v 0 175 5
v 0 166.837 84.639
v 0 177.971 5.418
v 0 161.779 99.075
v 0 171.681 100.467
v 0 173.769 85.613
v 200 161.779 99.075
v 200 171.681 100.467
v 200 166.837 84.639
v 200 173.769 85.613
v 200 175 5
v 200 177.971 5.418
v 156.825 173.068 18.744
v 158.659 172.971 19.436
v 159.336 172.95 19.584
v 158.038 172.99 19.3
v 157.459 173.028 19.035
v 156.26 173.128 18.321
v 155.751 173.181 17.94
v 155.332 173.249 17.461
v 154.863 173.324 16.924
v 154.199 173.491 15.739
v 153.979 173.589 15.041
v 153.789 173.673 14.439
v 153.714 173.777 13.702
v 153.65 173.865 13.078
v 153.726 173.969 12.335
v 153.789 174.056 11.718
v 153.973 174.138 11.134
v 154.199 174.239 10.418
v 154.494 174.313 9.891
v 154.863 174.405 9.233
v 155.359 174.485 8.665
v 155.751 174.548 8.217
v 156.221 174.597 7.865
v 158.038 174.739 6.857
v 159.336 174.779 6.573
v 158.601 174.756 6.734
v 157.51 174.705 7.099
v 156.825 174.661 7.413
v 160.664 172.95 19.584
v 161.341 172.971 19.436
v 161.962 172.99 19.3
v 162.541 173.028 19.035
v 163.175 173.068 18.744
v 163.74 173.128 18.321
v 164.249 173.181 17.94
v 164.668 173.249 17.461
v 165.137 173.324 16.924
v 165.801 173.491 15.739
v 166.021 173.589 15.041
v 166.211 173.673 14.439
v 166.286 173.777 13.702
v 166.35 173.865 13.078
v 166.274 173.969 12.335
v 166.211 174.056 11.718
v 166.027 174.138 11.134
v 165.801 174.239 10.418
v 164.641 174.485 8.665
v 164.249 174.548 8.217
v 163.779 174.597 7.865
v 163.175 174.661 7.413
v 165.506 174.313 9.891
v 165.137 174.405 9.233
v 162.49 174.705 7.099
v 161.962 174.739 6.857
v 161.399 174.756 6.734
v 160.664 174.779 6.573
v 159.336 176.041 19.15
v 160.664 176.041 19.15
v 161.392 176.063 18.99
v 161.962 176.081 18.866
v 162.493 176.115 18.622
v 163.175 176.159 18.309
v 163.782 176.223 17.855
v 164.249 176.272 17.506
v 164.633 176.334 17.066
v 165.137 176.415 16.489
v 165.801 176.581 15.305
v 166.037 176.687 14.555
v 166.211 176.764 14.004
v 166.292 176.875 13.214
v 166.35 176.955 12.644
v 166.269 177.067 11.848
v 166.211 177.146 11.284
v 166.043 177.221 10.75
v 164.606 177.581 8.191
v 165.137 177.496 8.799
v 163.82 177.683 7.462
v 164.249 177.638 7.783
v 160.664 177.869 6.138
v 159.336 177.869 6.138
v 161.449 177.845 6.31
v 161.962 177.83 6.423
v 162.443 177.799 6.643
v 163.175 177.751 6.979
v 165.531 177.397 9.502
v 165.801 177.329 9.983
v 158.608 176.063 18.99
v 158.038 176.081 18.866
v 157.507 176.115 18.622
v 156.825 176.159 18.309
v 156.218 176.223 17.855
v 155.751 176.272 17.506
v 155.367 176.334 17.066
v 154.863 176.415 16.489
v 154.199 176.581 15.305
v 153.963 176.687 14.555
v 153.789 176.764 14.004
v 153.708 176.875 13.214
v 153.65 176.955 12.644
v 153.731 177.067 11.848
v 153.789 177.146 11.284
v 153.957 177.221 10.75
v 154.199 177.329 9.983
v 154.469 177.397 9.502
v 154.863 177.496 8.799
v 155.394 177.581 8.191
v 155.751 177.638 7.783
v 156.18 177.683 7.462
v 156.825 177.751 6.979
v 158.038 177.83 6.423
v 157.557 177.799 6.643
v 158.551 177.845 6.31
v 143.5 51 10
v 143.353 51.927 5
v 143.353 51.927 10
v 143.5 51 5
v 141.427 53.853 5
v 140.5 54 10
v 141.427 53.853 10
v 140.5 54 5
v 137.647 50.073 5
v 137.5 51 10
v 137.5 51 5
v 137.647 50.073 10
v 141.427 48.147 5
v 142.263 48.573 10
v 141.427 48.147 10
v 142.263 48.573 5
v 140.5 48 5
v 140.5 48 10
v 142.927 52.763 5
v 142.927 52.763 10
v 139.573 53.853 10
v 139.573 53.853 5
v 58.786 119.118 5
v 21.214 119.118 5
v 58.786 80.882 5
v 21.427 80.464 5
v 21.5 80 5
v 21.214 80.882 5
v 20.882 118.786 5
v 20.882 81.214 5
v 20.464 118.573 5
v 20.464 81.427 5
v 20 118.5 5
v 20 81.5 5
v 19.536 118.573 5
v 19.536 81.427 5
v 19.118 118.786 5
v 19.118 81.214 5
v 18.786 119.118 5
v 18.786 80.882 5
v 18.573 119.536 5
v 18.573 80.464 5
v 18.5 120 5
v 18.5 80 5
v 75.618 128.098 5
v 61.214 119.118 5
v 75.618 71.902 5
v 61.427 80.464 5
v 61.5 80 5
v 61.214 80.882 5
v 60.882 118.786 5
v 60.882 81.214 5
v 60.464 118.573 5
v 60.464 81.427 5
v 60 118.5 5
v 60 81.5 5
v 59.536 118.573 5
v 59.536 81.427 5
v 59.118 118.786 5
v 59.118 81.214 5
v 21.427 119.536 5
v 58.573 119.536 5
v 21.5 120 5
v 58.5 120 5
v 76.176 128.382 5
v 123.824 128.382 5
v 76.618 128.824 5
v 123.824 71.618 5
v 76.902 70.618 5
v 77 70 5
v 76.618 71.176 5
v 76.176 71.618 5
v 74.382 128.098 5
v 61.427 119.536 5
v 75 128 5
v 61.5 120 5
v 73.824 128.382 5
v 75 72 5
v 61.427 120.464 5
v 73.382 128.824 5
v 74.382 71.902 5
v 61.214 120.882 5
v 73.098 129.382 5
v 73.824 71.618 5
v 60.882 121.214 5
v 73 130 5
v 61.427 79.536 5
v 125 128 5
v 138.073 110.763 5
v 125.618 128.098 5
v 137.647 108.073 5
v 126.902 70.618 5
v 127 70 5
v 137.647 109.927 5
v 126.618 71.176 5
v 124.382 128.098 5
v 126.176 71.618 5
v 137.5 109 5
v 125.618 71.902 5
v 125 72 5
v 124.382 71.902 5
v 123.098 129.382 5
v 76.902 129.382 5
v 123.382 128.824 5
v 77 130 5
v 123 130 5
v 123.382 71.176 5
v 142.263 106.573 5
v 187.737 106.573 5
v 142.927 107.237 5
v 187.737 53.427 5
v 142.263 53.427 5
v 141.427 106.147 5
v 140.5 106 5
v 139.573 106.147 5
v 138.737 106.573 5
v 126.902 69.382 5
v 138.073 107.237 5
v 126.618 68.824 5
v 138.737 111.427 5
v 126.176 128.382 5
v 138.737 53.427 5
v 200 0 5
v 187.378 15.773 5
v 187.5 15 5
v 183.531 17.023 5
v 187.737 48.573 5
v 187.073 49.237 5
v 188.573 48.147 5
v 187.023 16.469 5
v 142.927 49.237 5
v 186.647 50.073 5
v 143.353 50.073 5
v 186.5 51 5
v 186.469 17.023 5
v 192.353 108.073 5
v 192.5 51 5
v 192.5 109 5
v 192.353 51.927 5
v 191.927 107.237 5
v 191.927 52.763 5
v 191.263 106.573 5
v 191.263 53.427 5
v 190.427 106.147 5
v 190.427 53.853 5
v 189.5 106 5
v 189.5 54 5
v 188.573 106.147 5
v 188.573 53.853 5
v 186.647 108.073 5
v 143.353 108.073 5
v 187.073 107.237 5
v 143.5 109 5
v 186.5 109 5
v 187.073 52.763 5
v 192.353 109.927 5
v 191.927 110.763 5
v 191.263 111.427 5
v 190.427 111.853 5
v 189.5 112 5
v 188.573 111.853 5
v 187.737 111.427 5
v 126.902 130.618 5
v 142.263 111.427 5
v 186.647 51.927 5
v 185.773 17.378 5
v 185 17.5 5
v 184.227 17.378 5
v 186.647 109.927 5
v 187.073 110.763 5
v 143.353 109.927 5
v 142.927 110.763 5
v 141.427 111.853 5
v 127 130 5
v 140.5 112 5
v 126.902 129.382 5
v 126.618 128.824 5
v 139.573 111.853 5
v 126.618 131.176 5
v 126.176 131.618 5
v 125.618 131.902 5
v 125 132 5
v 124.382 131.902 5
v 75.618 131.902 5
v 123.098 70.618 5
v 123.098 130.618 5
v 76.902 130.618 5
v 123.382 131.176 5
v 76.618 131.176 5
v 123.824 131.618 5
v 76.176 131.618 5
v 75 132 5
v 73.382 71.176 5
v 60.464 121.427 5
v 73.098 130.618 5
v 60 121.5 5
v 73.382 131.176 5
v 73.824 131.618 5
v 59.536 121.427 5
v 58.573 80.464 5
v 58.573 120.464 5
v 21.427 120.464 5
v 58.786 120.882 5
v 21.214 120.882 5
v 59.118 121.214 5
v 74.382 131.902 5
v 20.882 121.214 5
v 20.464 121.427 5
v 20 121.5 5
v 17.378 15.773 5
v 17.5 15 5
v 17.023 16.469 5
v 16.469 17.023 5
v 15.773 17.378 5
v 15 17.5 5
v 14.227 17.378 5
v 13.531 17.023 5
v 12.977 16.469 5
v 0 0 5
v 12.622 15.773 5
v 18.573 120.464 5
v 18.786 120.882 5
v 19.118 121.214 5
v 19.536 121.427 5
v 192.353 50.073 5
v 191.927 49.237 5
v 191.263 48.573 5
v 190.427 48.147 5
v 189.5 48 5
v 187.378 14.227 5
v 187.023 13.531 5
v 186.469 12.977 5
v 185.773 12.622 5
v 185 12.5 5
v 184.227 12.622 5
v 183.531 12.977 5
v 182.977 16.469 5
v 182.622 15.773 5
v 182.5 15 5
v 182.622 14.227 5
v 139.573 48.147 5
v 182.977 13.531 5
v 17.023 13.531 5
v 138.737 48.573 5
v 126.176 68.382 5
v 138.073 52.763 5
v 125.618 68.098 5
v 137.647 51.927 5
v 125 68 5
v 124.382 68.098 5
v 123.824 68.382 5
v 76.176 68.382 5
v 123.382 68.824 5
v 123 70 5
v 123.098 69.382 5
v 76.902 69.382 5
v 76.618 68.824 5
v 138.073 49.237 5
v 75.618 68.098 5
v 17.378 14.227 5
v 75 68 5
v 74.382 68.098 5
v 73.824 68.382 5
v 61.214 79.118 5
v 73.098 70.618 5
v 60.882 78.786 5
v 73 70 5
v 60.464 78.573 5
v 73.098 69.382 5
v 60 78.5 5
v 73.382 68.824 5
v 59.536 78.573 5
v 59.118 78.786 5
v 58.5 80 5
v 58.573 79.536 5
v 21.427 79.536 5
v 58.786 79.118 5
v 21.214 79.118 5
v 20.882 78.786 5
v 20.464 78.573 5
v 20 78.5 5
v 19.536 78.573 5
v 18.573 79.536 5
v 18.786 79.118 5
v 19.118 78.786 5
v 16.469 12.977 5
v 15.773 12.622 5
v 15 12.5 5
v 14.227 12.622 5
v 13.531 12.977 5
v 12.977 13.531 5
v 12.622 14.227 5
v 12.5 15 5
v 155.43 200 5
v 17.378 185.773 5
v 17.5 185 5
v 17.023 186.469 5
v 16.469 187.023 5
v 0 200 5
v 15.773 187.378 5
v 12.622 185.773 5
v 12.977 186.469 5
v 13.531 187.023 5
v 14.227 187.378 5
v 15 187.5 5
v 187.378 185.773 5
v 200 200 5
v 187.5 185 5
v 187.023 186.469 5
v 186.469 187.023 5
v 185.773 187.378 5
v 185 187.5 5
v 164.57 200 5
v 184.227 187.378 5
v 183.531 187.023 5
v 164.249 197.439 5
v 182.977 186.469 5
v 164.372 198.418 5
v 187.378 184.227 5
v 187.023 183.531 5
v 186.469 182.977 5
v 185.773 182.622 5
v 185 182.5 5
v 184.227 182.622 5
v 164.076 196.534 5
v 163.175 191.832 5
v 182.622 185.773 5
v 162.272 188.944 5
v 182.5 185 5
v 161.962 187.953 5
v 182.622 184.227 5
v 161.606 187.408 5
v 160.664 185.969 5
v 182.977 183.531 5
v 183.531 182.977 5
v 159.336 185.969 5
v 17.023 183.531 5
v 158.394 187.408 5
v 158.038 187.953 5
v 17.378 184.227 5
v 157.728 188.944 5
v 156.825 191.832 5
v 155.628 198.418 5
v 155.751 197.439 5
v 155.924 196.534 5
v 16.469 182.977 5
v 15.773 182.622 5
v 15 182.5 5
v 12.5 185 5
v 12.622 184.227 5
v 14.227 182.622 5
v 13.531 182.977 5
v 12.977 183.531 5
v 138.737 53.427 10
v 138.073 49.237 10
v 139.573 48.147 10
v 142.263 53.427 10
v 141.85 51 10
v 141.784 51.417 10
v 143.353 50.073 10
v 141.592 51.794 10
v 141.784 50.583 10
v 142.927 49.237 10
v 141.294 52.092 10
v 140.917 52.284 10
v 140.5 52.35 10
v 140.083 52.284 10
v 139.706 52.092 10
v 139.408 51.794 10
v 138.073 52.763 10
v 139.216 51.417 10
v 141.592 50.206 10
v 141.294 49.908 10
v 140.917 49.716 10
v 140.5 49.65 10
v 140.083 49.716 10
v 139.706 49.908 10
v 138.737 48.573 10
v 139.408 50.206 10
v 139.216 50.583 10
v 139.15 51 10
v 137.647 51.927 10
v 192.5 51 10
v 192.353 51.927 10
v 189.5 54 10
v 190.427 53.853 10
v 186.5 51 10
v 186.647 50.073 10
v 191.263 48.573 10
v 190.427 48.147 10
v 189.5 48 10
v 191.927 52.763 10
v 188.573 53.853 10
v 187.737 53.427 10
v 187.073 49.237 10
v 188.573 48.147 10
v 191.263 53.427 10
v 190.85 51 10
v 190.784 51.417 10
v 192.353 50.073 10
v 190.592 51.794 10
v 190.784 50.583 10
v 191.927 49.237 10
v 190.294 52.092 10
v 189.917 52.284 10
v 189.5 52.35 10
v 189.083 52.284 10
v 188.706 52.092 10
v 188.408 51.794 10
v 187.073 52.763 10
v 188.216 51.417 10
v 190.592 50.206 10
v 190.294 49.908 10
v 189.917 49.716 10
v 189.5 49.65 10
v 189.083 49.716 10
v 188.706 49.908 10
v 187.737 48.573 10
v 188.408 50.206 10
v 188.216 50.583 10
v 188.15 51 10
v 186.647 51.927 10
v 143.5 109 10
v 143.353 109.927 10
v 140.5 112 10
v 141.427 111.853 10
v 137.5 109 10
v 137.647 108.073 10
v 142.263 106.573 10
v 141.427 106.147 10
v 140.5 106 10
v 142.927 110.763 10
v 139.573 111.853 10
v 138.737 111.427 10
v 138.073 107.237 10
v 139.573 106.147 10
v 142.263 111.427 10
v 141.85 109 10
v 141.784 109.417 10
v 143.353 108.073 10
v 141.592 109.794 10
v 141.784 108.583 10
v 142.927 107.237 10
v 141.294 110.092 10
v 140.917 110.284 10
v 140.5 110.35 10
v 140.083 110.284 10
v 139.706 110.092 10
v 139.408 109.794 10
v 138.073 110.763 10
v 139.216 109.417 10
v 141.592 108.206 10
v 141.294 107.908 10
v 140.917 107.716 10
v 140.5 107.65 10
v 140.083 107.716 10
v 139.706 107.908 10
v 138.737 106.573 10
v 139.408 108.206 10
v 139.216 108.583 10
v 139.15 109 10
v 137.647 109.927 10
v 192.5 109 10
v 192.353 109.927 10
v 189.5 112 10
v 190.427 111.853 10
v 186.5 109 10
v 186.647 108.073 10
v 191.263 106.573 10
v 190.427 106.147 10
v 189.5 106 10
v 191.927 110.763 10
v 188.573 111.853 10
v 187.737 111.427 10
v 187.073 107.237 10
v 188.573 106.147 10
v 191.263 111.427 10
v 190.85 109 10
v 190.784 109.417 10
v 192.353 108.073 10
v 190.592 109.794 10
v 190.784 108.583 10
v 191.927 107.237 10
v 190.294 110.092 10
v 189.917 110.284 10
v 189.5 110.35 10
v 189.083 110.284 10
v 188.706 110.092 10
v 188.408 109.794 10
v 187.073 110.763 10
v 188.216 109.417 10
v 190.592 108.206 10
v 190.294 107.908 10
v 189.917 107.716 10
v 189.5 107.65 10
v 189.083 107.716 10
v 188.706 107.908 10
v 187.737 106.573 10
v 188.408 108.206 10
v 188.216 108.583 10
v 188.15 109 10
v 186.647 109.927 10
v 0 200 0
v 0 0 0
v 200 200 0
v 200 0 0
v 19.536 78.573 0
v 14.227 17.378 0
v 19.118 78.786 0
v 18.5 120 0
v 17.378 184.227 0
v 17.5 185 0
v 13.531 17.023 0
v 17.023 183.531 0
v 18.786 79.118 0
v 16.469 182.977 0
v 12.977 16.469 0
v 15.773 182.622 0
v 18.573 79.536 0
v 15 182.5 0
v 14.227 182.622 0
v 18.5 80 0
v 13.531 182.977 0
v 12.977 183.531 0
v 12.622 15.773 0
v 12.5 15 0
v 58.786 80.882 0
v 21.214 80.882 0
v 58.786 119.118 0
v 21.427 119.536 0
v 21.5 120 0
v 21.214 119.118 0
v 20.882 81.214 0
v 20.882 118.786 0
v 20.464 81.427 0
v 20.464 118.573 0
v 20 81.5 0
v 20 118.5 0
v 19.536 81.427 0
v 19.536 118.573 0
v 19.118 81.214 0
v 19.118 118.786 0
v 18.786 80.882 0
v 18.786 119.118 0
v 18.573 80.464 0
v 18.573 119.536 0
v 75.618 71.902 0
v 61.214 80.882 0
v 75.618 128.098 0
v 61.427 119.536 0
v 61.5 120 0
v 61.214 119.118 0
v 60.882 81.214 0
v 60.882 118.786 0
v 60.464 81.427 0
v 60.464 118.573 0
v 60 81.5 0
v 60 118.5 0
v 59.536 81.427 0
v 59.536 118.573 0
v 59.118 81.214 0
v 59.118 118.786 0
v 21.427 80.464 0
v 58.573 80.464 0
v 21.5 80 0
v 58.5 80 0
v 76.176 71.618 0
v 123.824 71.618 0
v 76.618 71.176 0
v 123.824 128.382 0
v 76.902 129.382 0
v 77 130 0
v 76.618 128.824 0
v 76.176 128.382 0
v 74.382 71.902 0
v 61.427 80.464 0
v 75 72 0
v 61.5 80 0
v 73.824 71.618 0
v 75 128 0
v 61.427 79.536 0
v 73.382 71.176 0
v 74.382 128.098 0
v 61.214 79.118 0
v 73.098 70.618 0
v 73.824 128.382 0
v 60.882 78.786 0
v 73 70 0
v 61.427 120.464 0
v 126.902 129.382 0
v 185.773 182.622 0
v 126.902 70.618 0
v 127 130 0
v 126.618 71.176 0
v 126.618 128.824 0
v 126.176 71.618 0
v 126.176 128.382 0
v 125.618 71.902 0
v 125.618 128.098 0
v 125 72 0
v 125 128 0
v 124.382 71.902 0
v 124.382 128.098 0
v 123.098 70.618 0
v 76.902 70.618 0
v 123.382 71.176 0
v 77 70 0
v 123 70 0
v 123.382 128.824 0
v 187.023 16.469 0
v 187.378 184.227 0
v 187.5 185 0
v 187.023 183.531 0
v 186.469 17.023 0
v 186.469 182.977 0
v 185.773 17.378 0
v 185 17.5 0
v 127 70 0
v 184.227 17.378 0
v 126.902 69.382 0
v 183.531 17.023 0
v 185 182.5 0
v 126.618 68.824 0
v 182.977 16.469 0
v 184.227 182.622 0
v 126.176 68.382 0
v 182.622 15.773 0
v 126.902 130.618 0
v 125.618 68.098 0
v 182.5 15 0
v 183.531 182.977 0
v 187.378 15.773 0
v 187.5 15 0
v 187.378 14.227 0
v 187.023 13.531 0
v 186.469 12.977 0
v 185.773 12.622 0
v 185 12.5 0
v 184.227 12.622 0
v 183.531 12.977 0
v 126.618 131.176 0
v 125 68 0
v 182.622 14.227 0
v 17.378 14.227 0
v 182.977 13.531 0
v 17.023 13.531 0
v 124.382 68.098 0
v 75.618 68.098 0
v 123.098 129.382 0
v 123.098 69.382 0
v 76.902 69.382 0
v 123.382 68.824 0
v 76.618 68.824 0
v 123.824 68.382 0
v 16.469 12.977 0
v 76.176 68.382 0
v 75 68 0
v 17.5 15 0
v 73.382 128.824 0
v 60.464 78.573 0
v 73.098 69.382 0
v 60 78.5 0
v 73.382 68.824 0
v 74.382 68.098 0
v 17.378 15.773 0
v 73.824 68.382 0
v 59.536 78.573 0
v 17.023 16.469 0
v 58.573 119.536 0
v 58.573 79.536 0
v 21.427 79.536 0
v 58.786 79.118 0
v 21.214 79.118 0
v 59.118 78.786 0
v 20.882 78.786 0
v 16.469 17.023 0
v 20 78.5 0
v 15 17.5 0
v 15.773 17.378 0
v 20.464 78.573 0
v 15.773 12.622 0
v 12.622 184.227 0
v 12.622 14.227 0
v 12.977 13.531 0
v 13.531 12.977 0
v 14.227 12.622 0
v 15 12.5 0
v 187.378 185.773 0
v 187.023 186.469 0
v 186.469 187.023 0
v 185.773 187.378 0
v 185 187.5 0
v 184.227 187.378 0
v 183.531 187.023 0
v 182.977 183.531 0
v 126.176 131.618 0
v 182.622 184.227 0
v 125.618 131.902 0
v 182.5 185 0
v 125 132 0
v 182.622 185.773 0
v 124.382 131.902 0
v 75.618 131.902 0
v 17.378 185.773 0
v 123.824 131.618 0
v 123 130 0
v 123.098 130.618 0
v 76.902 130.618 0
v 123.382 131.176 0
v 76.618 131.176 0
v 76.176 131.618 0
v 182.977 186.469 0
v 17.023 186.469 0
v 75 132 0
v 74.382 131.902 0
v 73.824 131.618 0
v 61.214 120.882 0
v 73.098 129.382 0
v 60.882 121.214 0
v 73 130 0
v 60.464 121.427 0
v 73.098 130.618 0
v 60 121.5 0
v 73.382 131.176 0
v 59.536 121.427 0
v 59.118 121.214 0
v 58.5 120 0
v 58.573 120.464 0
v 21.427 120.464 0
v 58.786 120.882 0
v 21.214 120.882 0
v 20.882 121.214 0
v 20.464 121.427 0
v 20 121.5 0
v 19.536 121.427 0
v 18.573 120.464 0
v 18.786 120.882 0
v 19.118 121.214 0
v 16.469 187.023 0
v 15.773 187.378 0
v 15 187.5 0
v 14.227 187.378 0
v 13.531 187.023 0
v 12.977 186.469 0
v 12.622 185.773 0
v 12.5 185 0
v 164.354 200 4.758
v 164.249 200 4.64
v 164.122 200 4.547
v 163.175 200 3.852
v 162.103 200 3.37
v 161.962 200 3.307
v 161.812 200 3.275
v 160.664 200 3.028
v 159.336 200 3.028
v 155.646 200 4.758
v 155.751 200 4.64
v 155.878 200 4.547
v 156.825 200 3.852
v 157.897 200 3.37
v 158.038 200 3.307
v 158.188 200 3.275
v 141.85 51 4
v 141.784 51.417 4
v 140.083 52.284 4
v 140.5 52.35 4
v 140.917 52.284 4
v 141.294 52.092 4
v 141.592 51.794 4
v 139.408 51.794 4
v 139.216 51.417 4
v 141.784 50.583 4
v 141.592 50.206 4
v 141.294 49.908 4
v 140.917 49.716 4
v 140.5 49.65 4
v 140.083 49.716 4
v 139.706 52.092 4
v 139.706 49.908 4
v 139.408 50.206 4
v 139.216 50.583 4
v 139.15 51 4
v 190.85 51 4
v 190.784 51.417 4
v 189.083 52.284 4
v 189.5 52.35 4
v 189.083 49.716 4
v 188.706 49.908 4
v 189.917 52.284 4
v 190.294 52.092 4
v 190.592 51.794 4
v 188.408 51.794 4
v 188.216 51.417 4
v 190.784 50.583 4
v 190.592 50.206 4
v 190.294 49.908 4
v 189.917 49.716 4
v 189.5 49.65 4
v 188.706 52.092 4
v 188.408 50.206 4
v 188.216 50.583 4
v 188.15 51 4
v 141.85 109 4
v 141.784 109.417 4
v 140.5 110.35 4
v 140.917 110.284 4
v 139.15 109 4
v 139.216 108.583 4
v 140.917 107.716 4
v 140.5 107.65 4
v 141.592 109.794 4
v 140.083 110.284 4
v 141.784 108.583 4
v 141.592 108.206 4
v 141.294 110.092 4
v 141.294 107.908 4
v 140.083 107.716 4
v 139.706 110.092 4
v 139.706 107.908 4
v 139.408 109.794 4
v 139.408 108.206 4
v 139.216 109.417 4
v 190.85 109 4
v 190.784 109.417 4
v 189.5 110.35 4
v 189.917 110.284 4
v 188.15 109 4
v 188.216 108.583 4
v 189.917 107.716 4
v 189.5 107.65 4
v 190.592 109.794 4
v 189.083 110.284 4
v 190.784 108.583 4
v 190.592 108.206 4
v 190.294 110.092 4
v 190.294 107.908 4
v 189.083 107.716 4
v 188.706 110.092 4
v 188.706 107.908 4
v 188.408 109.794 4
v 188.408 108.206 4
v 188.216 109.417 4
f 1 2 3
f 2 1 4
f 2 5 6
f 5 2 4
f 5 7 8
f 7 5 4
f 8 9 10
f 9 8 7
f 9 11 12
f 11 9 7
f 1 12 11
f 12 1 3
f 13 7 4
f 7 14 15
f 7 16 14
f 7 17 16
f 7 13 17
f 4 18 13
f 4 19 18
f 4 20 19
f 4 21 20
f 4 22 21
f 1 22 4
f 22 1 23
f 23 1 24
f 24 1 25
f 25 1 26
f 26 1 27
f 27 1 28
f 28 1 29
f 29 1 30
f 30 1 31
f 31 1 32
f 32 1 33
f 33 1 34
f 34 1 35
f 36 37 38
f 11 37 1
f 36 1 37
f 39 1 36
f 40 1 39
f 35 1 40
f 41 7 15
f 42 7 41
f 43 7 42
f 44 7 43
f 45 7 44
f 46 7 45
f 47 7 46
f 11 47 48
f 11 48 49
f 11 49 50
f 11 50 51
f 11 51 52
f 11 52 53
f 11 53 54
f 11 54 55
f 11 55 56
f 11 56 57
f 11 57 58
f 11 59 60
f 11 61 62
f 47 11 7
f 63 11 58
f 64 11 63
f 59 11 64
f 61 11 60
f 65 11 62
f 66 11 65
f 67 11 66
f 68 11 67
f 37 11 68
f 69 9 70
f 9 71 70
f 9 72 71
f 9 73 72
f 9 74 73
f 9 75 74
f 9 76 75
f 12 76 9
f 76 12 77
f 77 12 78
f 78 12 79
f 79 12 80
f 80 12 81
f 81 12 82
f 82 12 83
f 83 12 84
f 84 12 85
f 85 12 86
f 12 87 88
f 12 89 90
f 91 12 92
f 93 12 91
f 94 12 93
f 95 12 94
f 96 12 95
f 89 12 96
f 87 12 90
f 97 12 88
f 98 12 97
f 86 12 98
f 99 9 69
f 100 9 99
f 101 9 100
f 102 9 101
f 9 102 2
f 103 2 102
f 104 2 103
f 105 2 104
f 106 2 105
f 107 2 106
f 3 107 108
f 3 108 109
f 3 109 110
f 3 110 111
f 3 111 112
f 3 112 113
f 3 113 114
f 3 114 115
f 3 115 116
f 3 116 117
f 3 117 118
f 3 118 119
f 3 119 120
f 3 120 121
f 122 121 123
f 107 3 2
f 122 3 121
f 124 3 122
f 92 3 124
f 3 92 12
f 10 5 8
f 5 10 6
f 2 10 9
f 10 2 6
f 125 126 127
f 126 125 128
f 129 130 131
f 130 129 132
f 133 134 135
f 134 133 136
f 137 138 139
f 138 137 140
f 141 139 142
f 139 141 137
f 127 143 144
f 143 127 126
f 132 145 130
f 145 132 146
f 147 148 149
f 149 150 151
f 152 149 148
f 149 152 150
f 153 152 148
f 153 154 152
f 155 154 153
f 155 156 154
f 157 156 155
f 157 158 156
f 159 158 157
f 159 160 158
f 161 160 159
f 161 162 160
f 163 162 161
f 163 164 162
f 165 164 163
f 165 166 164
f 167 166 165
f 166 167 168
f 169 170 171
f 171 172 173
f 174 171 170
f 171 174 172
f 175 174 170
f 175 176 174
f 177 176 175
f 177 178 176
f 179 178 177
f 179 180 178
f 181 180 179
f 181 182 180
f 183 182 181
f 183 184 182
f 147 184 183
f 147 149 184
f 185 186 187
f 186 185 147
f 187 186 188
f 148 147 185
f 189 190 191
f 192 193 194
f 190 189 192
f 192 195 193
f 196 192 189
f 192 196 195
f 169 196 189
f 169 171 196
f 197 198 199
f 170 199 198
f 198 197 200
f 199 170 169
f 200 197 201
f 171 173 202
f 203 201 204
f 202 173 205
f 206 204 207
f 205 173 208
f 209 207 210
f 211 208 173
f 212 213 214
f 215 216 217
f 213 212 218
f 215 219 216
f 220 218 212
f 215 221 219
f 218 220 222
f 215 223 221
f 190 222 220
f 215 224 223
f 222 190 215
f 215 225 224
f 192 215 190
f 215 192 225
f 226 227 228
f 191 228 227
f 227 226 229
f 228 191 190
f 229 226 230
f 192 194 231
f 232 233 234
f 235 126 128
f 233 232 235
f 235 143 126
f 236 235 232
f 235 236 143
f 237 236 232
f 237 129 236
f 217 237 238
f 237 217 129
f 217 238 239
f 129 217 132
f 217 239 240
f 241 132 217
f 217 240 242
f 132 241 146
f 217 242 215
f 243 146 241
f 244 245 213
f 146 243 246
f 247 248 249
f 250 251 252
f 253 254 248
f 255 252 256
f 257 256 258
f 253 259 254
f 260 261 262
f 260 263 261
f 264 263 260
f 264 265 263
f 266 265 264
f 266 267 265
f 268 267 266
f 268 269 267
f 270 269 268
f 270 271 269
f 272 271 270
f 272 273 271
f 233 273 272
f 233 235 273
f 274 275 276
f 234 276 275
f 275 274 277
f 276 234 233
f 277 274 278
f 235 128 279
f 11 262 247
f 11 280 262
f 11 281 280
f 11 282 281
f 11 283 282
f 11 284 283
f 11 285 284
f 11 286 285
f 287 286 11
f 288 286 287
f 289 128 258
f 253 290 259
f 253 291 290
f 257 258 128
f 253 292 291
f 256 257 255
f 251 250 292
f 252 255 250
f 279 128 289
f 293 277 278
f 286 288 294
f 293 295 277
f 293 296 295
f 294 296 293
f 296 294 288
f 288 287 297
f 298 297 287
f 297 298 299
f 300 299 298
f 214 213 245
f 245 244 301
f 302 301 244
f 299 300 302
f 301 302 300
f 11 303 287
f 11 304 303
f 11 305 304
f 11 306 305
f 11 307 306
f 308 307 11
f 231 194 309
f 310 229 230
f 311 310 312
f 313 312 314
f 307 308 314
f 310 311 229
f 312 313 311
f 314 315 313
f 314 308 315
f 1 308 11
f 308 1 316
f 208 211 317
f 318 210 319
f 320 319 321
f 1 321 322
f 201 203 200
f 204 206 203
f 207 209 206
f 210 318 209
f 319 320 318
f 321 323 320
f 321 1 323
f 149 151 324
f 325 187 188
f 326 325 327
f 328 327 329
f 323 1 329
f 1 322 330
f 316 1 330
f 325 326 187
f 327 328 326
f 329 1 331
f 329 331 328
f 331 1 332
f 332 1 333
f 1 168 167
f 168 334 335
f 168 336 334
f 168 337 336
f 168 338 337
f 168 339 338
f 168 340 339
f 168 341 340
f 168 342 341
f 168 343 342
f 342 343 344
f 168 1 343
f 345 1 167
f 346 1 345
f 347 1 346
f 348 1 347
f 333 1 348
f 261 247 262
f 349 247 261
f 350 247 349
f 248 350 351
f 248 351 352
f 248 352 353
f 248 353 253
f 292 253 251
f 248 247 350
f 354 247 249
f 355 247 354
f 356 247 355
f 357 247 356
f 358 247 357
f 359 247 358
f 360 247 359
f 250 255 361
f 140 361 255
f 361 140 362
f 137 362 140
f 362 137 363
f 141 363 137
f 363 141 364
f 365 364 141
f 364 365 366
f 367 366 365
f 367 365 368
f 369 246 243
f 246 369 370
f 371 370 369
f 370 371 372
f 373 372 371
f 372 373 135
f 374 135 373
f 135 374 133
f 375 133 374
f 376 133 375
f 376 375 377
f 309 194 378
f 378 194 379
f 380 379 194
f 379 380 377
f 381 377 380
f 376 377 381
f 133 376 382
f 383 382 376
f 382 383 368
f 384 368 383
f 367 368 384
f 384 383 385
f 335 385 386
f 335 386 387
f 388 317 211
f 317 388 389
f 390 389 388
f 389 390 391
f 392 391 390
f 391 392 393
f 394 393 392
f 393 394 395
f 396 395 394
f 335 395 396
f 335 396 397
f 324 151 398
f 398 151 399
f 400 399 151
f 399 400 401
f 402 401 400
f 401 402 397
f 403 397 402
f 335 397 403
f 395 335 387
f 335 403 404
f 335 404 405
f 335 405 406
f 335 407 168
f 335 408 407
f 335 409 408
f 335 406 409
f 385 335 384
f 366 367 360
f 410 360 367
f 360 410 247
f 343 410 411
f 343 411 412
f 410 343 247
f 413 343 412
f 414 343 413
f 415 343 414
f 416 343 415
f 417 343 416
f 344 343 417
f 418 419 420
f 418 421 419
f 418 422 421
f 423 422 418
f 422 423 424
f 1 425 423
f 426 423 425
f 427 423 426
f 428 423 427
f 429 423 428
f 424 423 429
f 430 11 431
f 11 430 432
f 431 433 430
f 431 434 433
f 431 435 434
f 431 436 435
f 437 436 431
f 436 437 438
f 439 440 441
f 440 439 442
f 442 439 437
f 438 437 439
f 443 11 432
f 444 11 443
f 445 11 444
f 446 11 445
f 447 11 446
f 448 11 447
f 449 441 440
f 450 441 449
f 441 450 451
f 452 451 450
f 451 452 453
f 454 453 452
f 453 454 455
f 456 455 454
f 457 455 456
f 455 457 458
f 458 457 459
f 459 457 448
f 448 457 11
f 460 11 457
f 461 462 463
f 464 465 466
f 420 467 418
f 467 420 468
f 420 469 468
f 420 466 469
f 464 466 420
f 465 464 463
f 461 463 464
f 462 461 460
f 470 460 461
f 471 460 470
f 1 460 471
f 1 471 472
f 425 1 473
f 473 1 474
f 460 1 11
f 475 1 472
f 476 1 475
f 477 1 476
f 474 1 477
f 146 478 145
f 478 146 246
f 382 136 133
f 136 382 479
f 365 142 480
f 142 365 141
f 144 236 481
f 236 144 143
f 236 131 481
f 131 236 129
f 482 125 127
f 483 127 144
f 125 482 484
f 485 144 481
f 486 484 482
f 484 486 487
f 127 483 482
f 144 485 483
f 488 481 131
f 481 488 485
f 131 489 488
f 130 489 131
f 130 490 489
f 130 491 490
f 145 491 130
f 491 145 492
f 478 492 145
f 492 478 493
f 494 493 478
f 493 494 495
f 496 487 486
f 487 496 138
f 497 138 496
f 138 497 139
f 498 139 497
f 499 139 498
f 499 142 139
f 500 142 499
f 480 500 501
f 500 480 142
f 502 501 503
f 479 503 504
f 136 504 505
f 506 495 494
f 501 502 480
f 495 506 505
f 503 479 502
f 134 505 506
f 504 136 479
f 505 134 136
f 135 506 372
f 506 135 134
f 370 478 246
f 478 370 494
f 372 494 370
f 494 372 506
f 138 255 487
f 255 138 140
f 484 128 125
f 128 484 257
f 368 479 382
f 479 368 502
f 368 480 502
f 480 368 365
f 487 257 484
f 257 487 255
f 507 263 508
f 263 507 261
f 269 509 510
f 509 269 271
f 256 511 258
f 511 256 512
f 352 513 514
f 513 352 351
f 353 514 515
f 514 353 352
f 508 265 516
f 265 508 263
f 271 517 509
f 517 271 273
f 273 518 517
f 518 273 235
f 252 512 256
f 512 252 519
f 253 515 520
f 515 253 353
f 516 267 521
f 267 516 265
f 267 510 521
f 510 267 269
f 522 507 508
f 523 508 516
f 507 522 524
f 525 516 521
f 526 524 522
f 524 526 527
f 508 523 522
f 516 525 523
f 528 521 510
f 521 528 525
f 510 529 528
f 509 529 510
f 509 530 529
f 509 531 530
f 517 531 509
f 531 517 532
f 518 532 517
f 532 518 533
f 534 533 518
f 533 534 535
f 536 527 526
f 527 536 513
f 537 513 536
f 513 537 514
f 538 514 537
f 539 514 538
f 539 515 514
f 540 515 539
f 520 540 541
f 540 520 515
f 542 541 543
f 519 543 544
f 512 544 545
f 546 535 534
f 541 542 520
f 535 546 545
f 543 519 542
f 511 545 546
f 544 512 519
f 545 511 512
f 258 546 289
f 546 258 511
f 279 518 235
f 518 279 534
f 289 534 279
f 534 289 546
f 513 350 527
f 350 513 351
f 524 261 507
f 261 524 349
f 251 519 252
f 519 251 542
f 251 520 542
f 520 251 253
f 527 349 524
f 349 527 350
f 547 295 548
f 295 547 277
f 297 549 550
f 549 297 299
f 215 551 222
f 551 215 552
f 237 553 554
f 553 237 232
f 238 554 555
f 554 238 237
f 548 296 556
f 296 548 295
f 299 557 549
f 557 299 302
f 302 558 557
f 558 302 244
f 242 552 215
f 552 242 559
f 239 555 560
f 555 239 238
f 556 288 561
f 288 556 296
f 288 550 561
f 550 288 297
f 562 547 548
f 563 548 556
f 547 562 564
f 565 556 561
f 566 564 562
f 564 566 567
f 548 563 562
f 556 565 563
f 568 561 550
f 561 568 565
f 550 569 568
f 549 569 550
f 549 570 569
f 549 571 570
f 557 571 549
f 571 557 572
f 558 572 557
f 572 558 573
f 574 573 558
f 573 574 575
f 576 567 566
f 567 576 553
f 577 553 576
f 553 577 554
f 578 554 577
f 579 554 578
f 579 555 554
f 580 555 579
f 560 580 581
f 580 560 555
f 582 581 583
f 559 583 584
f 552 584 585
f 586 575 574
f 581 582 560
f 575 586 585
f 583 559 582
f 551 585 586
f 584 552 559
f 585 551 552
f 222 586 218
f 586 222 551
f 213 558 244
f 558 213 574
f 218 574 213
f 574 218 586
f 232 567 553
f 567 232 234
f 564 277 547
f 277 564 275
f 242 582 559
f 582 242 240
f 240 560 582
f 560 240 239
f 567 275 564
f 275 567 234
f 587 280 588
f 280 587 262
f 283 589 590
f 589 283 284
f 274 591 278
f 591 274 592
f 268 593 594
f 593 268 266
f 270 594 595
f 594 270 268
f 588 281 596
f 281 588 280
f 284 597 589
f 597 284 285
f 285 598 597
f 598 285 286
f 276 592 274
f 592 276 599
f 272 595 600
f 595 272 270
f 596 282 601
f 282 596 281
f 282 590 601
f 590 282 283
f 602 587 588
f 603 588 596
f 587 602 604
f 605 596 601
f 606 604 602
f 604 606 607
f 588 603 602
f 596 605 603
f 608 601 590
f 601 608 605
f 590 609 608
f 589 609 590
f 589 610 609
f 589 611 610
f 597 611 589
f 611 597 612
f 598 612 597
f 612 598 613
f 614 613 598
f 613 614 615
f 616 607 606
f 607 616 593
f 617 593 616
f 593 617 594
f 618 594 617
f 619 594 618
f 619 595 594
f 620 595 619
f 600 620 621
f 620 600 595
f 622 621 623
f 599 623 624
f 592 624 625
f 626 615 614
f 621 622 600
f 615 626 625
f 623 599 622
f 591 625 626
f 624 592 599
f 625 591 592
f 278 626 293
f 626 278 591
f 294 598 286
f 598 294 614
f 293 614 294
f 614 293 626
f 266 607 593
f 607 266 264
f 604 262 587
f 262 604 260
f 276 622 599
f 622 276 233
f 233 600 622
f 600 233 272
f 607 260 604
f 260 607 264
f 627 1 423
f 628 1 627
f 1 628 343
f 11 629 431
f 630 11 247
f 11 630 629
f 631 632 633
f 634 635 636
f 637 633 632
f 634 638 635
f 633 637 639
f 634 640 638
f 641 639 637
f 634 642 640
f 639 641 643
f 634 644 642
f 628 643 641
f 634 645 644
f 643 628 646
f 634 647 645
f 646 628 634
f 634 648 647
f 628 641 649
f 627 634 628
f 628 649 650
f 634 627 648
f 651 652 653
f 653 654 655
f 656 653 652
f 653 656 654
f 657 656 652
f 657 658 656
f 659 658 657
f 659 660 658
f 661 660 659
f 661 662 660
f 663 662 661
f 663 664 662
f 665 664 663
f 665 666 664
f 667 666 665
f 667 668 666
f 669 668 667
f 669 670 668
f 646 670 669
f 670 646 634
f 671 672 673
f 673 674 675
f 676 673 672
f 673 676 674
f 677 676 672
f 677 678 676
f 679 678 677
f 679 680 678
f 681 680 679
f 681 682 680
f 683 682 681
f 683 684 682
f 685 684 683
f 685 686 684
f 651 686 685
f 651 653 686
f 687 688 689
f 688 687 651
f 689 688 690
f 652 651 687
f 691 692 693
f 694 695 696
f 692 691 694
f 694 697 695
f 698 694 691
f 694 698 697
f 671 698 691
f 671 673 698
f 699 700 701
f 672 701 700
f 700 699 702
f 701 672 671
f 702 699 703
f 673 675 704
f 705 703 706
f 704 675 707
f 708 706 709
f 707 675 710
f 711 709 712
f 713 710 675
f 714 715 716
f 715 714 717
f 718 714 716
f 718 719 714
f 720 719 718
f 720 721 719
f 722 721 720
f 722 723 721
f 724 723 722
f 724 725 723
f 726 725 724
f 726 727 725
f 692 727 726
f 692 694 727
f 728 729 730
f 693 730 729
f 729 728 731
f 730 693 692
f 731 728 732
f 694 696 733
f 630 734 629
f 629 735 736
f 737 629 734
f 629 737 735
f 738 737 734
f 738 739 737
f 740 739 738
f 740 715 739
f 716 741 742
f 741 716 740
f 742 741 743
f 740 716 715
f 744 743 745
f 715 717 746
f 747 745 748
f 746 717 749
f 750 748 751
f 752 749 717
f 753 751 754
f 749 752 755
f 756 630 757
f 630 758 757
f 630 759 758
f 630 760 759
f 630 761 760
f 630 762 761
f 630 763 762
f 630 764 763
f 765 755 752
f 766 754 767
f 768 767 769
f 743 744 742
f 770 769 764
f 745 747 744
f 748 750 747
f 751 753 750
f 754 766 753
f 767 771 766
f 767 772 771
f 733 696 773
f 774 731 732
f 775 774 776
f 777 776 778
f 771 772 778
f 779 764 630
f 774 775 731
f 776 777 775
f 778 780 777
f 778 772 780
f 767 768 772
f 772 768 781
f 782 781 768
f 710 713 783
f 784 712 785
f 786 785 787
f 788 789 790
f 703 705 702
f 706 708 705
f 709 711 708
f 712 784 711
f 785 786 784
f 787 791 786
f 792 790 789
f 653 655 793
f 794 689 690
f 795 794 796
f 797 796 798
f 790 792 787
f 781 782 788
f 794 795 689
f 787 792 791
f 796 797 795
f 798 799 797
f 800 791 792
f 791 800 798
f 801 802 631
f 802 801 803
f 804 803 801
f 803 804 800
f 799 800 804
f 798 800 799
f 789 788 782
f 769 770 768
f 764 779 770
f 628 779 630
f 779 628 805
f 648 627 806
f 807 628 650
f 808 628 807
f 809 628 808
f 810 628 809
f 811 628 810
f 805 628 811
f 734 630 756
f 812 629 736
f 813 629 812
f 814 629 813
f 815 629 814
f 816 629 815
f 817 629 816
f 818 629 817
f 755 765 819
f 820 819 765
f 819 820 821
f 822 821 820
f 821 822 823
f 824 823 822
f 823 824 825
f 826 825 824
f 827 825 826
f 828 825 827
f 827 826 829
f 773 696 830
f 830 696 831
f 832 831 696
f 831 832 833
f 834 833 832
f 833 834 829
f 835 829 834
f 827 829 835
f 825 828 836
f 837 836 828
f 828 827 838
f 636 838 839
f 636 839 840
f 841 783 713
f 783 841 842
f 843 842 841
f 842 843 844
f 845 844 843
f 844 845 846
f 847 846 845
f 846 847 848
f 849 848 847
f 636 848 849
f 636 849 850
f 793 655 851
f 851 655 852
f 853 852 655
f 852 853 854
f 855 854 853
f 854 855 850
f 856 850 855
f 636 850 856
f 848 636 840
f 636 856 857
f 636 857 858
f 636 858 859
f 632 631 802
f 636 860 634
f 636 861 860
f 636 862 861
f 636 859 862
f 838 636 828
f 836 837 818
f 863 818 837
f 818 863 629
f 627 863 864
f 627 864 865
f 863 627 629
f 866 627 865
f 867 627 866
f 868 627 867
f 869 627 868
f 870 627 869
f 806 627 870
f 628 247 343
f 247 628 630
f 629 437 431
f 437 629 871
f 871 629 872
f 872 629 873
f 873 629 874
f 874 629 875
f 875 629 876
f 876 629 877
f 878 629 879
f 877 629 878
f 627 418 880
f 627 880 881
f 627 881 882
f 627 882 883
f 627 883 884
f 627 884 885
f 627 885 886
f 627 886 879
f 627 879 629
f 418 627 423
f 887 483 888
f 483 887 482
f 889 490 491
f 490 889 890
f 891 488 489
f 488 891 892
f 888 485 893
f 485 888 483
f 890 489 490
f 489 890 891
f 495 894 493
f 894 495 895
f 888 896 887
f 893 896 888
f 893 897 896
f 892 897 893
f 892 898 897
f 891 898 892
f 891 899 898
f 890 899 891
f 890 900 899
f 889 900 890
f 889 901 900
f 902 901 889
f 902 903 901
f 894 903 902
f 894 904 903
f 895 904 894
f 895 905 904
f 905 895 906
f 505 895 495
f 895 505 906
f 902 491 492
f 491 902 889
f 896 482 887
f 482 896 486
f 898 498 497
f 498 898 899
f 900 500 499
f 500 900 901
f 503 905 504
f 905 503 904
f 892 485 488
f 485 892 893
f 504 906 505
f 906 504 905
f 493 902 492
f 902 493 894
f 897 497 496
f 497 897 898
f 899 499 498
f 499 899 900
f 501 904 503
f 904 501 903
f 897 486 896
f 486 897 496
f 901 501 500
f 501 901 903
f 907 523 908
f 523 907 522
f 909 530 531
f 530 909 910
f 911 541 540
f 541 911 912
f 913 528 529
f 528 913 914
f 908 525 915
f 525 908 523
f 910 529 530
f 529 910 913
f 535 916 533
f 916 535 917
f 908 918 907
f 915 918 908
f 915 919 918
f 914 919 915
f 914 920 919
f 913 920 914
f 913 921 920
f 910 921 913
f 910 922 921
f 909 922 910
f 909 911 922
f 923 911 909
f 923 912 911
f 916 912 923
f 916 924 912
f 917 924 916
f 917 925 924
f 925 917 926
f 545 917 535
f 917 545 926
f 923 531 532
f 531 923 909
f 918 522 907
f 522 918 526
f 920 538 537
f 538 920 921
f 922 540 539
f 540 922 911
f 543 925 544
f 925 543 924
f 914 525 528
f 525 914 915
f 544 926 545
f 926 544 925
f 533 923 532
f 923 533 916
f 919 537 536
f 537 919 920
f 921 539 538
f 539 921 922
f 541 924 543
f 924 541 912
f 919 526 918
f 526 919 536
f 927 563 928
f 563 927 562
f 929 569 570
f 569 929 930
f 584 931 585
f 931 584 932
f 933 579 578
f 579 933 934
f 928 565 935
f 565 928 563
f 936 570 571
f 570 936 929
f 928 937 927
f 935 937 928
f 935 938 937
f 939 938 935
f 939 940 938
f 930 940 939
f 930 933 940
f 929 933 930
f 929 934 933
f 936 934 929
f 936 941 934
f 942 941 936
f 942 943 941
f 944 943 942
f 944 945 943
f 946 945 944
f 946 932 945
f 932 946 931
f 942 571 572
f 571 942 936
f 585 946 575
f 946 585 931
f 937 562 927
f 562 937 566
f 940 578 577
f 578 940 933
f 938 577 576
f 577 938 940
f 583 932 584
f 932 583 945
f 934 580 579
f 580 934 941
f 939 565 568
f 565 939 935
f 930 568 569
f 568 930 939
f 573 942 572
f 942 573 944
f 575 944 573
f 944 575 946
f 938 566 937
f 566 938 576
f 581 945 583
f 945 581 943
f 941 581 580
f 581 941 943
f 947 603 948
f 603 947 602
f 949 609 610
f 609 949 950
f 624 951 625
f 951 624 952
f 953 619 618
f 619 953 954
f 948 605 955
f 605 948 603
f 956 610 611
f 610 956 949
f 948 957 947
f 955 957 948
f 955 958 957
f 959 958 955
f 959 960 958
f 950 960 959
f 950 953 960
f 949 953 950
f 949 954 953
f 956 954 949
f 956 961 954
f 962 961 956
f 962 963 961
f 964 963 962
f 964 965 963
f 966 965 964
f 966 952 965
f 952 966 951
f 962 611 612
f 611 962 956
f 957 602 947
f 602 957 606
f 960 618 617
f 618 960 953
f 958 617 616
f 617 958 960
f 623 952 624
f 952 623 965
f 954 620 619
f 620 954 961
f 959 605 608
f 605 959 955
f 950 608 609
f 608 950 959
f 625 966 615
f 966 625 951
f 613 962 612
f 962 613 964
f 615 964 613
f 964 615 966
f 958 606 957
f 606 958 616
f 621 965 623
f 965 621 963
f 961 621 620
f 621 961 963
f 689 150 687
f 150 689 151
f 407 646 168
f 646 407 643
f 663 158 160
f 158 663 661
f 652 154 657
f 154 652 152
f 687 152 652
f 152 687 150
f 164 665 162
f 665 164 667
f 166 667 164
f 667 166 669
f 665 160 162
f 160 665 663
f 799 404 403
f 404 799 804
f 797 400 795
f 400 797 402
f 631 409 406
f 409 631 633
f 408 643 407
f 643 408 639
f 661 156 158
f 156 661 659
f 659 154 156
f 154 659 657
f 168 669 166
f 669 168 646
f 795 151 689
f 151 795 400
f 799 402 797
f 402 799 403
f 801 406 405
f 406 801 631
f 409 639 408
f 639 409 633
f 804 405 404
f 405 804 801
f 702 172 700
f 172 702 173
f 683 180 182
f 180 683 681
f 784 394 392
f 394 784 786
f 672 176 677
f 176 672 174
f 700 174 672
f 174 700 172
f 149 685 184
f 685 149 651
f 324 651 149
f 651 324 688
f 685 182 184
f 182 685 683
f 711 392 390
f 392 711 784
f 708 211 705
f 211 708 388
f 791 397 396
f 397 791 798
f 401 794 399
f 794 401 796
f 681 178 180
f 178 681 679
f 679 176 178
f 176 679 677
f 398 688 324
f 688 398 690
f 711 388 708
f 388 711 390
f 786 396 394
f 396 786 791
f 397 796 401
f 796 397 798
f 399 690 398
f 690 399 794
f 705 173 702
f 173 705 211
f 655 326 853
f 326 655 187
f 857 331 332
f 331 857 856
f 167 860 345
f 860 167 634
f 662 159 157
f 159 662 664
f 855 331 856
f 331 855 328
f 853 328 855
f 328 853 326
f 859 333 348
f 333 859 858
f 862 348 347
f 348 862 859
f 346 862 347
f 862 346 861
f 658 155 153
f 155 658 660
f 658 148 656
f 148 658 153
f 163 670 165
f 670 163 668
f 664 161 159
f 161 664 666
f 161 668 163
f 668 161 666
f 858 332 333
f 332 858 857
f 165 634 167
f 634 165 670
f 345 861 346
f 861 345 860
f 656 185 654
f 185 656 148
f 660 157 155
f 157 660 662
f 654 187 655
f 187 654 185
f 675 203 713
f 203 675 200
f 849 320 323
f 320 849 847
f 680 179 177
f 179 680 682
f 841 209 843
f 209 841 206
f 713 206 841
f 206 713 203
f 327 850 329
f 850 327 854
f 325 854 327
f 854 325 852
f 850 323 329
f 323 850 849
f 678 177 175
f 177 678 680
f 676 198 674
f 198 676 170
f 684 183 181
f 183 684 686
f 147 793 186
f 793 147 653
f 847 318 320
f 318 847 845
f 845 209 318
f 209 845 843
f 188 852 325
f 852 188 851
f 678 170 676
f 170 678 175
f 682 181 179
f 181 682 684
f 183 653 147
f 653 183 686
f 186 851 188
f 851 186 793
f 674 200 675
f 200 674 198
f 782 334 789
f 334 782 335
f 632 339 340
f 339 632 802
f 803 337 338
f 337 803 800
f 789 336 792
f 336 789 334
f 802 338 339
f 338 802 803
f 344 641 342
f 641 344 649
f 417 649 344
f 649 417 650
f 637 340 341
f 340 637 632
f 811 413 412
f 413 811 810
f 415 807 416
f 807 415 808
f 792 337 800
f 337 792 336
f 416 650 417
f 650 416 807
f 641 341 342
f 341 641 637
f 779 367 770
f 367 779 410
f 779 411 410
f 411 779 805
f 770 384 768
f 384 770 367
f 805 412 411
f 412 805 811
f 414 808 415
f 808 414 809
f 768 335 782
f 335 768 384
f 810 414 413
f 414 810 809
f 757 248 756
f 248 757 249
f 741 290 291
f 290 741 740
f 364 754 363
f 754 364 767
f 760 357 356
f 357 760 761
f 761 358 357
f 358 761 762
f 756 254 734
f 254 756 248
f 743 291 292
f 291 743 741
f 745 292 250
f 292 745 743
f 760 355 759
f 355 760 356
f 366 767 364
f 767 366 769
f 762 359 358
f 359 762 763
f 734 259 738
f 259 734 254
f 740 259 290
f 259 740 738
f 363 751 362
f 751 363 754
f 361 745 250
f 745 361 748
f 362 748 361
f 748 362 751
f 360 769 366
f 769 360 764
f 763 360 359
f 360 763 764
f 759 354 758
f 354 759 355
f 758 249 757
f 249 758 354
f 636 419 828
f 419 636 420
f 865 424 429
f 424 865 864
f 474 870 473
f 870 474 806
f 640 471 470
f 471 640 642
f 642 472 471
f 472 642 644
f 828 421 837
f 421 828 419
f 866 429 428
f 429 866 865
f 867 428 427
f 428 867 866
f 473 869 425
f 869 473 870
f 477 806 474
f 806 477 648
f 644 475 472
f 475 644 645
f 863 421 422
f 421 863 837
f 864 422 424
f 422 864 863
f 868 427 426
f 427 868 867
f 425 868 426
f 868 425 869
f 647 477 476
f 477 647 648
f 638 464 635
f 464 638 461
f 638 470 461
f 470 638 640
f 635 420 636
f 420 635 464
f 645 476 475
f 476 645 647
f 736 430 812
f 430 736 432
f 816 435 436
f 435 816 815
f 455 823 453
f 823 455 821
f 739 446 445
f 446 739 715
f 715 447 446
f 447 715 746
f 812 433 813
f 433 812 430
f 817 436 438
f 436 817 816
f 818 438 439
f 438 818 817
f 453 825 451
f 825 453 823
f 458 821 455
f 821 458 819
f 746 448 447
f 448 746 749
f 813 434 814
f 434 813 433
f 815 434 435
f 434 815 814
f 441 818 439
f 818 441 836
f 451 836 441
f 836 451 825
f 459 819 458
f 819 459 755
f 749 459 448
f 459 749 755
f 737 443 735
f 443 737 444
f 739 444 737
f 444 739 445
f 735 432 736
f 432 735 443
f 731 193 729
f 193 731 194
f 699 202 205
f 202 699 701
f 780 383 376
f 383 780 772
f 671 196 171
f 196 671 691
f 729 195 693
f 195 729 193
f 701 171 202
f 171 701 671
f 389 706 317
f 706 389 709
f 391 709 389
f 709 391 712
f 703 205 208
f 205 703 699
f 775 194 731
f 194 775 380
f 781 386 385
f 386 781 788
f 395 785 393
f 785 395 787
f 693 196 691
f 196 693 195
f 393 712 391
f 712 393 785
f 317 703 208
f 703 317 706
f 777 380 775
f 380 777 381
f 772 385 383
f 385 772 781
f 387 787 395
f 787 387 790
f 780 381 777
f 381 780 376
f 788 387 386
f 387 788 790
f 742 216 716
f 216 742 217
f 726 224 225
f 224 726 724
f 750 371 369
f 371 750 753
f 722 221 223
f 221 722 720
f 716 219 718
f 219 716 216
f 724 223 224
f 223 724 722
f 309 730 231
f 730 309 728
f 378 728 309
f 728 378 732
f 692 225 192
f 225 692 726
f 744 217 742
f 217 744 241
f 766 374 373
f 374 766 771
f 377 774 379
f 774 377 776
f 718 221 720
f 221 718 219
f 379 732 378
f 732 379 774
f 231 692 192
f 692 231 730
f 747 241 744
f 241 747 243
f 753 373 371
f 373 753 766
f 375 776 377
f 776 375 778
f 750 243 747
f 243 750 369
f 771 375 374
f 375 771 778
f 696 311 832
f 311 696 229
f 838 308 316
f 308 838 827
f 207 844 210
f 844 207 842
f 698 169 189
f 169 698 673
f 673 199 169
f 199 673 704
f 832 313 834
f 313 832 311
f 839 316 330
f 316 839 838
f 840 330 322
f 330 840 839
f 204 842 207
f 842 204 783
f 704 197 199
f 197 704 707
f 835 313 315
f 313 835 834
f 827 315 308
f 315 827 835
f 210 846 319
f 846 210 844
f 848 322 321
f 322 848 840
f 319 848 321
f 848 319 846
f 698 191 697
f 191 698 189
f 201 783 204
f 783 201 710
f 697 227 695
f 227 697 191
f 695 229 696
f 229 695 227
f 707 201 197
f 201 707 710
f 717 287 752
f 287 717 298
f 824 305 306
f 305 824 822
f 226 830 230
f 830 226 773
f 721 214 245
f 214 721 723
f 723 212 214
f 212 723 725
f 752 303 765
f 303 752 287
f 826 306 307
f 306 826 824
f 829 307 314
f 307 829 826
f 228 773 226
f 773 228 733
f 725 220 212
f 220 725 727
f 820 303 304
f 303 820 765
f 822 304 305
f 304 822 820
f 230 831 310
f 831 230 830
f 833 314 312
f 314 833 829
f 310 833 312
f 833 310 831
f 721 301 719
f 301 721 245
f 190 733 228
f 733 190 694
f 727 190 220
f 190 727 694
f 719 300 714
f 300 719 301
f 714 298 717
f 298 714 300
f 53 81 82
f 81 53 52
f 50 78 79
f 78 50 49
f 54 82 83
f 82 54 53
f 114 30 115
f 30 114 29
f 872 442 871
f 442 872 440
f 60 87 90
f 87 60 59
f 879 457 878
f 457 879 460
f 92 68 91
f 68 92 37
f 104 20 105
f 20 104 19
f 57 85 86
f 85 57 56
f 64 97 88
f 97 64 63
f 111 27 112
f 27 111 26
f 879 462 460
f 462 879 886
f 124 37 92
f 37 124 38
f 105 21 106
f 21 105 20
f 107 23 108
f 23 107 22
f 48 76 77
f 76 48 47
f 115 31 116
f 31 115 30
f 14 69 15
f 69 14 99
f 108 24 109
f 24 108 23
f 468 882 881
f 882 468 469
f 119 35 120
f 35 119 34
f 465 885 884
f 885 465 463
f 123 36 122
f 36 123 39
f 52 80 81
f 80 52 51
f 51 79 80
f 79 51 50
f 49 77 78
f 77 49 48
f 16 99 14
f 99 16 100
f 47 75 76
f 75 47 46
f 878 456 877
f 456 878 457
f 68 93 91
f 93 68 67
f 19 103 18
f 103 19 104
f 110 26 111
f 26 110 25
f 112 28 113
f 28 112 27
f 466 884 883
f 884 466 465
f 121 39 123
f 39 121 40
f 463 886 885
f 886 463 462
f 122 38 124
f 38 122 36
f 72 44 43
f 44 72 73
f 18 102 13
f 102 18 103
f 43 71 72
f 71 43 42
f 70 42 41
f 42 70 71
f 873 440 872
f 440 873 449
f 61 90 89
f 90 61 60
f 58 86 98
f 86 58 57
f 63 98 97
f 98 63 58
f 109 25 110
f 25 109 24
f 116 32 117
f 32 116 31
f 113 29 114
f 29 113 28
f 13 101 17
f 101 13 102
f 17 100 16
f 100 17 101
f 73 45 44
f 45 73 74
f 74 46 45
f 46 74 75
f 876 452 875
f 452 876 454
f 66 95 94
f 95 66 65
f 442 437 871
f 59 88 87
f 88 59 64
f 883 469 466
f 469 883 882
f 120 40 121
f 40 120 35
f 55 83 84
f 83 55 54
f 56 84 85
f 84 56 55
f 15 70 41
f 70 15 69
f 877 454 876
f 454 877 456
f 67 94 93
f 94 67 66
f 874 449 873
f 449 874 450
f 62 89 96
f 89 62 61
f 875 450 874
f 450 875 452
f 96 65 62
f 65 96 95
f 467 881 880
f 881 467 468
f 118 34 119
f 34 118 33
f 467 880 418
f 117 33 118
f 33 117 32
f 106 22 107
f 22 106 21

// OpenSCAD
// EMERGENCY MINIMAL PLATFORM BASE
// Simple flat platform to mount nutcracker
// WITH ANGLED FRONT LEDGE for LED plaque mounting
// Layout: Gift Box (left) | Nutcracker (center) | Pi 3B (right) | Battery (front)

platform_width = 200;      // ~8 inches (scaled to fit 220mm bed)
platform_length = 200;     // ~8 inches square  
platform_thickness = 5;    // Sturdy base

// LED Plaque mounting - SIMPLE VERTICAL SLOT
add_plaque_slot = true;
plaque_thickness_actual = 3;   // Plaque is 3mm thick
slot_width = 4;                // 4mm wide slot (holds 3mm plaque with clearance)
slot_depth = 15;               // How deep into platform edge
slot_height = 95;              // Height of slot opening (plaque is 90mm tall)
buildup_height = 50;           // Small ramp height (2 inches)
buildup_angle = 8;             // Degrees tilt

// Wire pass-through tunnel (RIGHT SIDE near Pi)
wire_tunnel_diameter = 12.7;   // 1/2 inch (12.7mm)
wire_tunnel_x = platform_width - 40;  // RIGHT side, near Pi
wire_tunnel_z = 8;             // Near bottom of angled wall

// Nutcracker mounting - CENTER of platform
nutcracker_mount_x = platform_width / 2;   // CENTER (100mm)
nutcracker_mount_y = platform_length / 2;  // CENTER (100mm)
nutcracker_mount_spacing_x = 50;  // 50mm spacing (fits 2.75" base)
nutcracker_mount_spacing_y = 60;  // 60mm spacing (fits 2.8125" base)
// Nutcracker holes at: (75,70), (125,70), (75,130), (125,130)
nutcracker_hole_diameter = 4;     // M4 screws

// Pi 3B mounting - RIGHT FRONT (away from LED backing!)
add_pi_mount = true;
pi_mount_x = platform_width - 35;  // FAR RIGHT, 35mm from edge
pi_mount_y = 80;  // FRONT area (was 145mm - moved to FRONT!)
pi_standoff_height = 5;    // 5mm standoffs
pi_mount_hole_diameter = 2.7;  // M2.5 screws
// Pi 3B hole spacing: ROTATED 90° - 49mm x 58mm (was 58mm x 49mm)
pi_spacing_x = 49;  // SWAPPED (rotated 90°)
pi_spacing_y = 58;  // SWAPPED (rotated 90°)
// Pi posts at: (140,51), (189,51), (140,109), (189,109) - FRONT RIGHT, clear of everything!

// Gift box mounting - LEFT side of nutcracker
add_giftbox_mount = true;
giftbox_mount_x = 40;  // FAR LEFT side
giftbox_mount_y = platform_length / 2;  // Centered with nutcracker
giftbox_mount_spacing = 40;    // 40mm x 40mm pattern
giftbox_hole_diameter = 3;     // M3 screws

// Battery area - FRONT (between nutcracker and LED panel)
// Battery: 2.75" x 4.5" x 0.625" (70mm x 114mm x 16mm)
// No screw holes - use velcro or friction fit
// Just mark the area (no mounting features)

// Optional: Platform mounting holes (to bolt to table/board)
platform_mount_holes = true;
platform_mount_hole_diameter = 5;

echo("=== PLATFORM BASE - NEW LAYOUT ===");
echo("Platform size:", platform_width, "x", platform_length, "x", platform_thickness);
echo("Layout: Gift Box (LEFT) | Nutcracker (CENTER) | Pi 3B (RIGHT)");
echo("Battery area: FRONT between nutcracker and LED panel (use velcro)");
echo("Gift box mount: ", add_giftbox_mount ? "YES - 4 mounting holes" : "NO");
echo("Fits Flashforge AD5X:", platform_width <= 220 && platform_length <= 220 ? "YES" : "NO - TOO LARGE");

module platform_base() {
    difference() {
        union() {
            // Main platform
            cube([platform_width, platform_length, platform_thickness]);
            
            // Angled backing piece with TOP overlap for plaque (slide in from side!)
            if (add_plaque_slot) {
                // Backing piece dimensions - MATCHES plaque size!
                backing_width = 200;      // Fits within platform
                backing_height = 95;      // Just taller than 90mm plaque
                backing_thickness = 3;    // Thin backing wall
                top_overlap_depth = 10;   // How far top wraps over front (holds plaque)
                top_overlap_height = 15;  // Thicker lip to grab plaque better
                
                // Position at BACK of platform, angled FORWARD
                translate([(platform_width - backing_width)/2, 
                           platform_length - 25,  // Near back edge
                           platform_thickness]) {
                    rotate([buildup_angle, 0, 0]) {  // Positive angle - tips FORWARD
                        // Back wall (plaque leans against this)
                        cube([backing_width, 
                              backing_thickness, 
                              backing_height]);
                        
                        // Top overlap piece (wraps over front to hold plaque)
                        // Positioned to catch top edge of plaque
                        translate([0, 0, backing_height - top_overlap_height])
                            cube([backing_width, 
                                  top_overlap_depth, 
                                  top_overlap_height]);
                    }
                }
            }
            
            // Pi 3B mounting standoffs (RIGHT side)
            if (add_pi_mount) {
                // Pi 3B hole pattern: 58mm x 49mm
                translate([pi_mount_x - pi_spacing_x/2, 
                           pi_mount_y - pi_spacing_y/2, 
                           platform_thickness])
                    cylinder(h = pi_standoff_height, d = 6, $fn=20);
                translate([pi_mount_x + pi_spacing_x/2, 
                           pi_mount_y - pi_spacing_y/2, 
                           platform_thickness])
                    cylinder(h = pi_standoff_height, d = 6, $fn=20);
                translate([pi_mount_x - pi_spacing_x/2, 
                           pi_mount_y + pi_spacing_y/2, 
                           platform_thickness])
                    cylinder(h = pi_standoff_height, d = 6, $fn=20);
                translate([pi_mount_x + pi_spacing_x/2, 
                           pi_mount_y + pi_spacing_y/2, 
                           platform_thickness])
                    cylinder(h = pi_standoff_height, d = 6, $fn=20);
            }
        }
        
        // Nutcracker mounting holes (CENTER)
        translate([nutcracker_mount_x - nutcracker_mount_spacing_x/2,
                   nutcracker_mount_y - nutcracker_mount_spacing_y/2,
                   -1])
            cylinder(h = platform_thickness + 2, d = nutcracker_hole_diameter, $fn=20);
        translate([nutcracker_mount_x + nutcracker_mount_spacing_x/2,
                   nutcracker_mount_y - nutcracker_mount_spacing_y/2,
                   -1])
            cylinder(h = platform_thickness + 2, d = nutcracker_hole_diameter, $fn=20);
        translate([nutcracker_mount_x - nutcracker_mount_spacing_x/2,
                   nutcracker_mount_y + nutcracker_mount_spacing_y/2,
                   -1])
            cylinder(h = platform_thickness + 2, d = nutcracker_hole_diameter, $fn=20);
        translate([nutcracker_mount_x + nutcracker_mount_spacing_x/2,
                   nutcracker_mount_y + nutcracker_mount_spacing_y/2,
                   -1])
            cylinder(h = platform_thickness + 2, d = nutcracker_hole_diameter, $fn=20);
        
        // Pi 3B mounting screw holes (through standoffs on RIGHT)
        if (add_pi_mount) {
            translate([pi_mount_x - pi_spacing_x/2, 
                       pi_mount_y - pi_spacing_y/2, 
                       platform_thickness - 1])
                cylinder(h = pi_standoff_height + 2, d = pi_mount_hole_diameter, $fn=20);
            translate([pi_mount_x + pi_spacing_x/2, 
                       pi_mount_y - pi_spacing_y/2, 
                       platform_thickness - 1])
                cylinder(h = pi_standoff_height + 2, d = pi_mount_hole_diameter, $fn=20);
            translate([pi_mount_x - pi_spacing_x/2, 
                       pi_mount_y + pi_spacing_y/2, 
                       platform_thickness - 1])
                cylinder(h = pi_standoff_height + 2, d = pi_mount_hole_diameter, $fn=20);
            translate([pi_mount_x + pi_spacing_x/2, 
                       pi_mount_y + pi_spacing_y/2, 
                       platform_thickness - 1])
                cylinder(h = pi_standoff_height + 2, d = pi_mount_hole_diameter, $fn=20);
        }
        
        // Gift box mounting holes (LEFT side, 40mm x 40mm pattern)
        if (add_giftbox_mount) {
            translate([giftbox_mount_x - giftbox_mount_spacing/2,
                       giftbox_mount_y - giftbox_mount_spacing/2,
                       -1])
                cylinder(h = platform_thickness + 2, d = giftbox_hole_diameter, $fn=20);
            translate([giftbox_mount_x + giftbox_mount_spacing/2,
                       giftbox_mount_y - giftbox_mount_spacing/2,
                       -1])
                cylinder(h = platform_thickness + 2, d = giftbox_hole_diameter, $fn=20);
            translate([giftbox_mount_x - giftbox_mount_spacing/2,
                       giftbox_mount_y + giftbox_mount_spacing/2,
                       -1])
                cylinder(h = platform_thickness + 2, d = giftbox_hole_diameter, $fn=20);
            translate([giftbox_mount_x + giftbox_mount_spacing/2,
                       giftbox_mount_y + giftbox_mount_spacing/2,
                       -1])
                cylinder(h = platform_thickness + 2, d = giftbox_hole_diameter, $fn=20);
        }
        
        // Platform mounting holes in corners (to bolt to table)
        if (platform_mount_holes) {
            translate([15, 15, -1])
                cylinder(h = platform_thickness + 2, d = platform_mount_hole_diameter, $fn=20);
            translate([platform_width - 15, 15, -1])
                cylinder(h = platform_thickness + 2, d = platform_mount_hole_diameter, $fn=20);
            translate([15, platform_length - 15, -1])
                cylinder(h = platform_thickness + 2, d = platform_mount_hole_diameter, $fn=20);
            translate([platform_width - 15, platform_length - 15, -1])
                cylinder(h = platform_thickness + 2, d = platform_mount_hole_diameter, $fn=20);
        }
        
        // Wire pass-through tunnel (goes THROUGH wall from BACK to FRONT)
        // Position on RIGHT SIDE near Pi, near bottom of angled wall
        translate([wire_tunnel_x, 
                   platform_length + 10,  // Start BEHIND the platform
                   wire_tunnel_z])
            rotate([90 - buildup_angle, 0, 0])  // Point FORWARD through angled wall
                cylinder(h = 80, d = wire_tunnel_diameter, $fn=30);
    }
}

// === RENDER ===
// Platform is too big for 220x220 bed - need to split or resize
// Option: Make it smaller to fit
smaller_platform_size = 200; // Fits 220mm bed with margin

module smaller_platform() {
    scale([smaller_platform_size/platform_width, 
           smaller_platform_size/platform_length, 
           1])
        platform_base();
}

smaller_platform();
